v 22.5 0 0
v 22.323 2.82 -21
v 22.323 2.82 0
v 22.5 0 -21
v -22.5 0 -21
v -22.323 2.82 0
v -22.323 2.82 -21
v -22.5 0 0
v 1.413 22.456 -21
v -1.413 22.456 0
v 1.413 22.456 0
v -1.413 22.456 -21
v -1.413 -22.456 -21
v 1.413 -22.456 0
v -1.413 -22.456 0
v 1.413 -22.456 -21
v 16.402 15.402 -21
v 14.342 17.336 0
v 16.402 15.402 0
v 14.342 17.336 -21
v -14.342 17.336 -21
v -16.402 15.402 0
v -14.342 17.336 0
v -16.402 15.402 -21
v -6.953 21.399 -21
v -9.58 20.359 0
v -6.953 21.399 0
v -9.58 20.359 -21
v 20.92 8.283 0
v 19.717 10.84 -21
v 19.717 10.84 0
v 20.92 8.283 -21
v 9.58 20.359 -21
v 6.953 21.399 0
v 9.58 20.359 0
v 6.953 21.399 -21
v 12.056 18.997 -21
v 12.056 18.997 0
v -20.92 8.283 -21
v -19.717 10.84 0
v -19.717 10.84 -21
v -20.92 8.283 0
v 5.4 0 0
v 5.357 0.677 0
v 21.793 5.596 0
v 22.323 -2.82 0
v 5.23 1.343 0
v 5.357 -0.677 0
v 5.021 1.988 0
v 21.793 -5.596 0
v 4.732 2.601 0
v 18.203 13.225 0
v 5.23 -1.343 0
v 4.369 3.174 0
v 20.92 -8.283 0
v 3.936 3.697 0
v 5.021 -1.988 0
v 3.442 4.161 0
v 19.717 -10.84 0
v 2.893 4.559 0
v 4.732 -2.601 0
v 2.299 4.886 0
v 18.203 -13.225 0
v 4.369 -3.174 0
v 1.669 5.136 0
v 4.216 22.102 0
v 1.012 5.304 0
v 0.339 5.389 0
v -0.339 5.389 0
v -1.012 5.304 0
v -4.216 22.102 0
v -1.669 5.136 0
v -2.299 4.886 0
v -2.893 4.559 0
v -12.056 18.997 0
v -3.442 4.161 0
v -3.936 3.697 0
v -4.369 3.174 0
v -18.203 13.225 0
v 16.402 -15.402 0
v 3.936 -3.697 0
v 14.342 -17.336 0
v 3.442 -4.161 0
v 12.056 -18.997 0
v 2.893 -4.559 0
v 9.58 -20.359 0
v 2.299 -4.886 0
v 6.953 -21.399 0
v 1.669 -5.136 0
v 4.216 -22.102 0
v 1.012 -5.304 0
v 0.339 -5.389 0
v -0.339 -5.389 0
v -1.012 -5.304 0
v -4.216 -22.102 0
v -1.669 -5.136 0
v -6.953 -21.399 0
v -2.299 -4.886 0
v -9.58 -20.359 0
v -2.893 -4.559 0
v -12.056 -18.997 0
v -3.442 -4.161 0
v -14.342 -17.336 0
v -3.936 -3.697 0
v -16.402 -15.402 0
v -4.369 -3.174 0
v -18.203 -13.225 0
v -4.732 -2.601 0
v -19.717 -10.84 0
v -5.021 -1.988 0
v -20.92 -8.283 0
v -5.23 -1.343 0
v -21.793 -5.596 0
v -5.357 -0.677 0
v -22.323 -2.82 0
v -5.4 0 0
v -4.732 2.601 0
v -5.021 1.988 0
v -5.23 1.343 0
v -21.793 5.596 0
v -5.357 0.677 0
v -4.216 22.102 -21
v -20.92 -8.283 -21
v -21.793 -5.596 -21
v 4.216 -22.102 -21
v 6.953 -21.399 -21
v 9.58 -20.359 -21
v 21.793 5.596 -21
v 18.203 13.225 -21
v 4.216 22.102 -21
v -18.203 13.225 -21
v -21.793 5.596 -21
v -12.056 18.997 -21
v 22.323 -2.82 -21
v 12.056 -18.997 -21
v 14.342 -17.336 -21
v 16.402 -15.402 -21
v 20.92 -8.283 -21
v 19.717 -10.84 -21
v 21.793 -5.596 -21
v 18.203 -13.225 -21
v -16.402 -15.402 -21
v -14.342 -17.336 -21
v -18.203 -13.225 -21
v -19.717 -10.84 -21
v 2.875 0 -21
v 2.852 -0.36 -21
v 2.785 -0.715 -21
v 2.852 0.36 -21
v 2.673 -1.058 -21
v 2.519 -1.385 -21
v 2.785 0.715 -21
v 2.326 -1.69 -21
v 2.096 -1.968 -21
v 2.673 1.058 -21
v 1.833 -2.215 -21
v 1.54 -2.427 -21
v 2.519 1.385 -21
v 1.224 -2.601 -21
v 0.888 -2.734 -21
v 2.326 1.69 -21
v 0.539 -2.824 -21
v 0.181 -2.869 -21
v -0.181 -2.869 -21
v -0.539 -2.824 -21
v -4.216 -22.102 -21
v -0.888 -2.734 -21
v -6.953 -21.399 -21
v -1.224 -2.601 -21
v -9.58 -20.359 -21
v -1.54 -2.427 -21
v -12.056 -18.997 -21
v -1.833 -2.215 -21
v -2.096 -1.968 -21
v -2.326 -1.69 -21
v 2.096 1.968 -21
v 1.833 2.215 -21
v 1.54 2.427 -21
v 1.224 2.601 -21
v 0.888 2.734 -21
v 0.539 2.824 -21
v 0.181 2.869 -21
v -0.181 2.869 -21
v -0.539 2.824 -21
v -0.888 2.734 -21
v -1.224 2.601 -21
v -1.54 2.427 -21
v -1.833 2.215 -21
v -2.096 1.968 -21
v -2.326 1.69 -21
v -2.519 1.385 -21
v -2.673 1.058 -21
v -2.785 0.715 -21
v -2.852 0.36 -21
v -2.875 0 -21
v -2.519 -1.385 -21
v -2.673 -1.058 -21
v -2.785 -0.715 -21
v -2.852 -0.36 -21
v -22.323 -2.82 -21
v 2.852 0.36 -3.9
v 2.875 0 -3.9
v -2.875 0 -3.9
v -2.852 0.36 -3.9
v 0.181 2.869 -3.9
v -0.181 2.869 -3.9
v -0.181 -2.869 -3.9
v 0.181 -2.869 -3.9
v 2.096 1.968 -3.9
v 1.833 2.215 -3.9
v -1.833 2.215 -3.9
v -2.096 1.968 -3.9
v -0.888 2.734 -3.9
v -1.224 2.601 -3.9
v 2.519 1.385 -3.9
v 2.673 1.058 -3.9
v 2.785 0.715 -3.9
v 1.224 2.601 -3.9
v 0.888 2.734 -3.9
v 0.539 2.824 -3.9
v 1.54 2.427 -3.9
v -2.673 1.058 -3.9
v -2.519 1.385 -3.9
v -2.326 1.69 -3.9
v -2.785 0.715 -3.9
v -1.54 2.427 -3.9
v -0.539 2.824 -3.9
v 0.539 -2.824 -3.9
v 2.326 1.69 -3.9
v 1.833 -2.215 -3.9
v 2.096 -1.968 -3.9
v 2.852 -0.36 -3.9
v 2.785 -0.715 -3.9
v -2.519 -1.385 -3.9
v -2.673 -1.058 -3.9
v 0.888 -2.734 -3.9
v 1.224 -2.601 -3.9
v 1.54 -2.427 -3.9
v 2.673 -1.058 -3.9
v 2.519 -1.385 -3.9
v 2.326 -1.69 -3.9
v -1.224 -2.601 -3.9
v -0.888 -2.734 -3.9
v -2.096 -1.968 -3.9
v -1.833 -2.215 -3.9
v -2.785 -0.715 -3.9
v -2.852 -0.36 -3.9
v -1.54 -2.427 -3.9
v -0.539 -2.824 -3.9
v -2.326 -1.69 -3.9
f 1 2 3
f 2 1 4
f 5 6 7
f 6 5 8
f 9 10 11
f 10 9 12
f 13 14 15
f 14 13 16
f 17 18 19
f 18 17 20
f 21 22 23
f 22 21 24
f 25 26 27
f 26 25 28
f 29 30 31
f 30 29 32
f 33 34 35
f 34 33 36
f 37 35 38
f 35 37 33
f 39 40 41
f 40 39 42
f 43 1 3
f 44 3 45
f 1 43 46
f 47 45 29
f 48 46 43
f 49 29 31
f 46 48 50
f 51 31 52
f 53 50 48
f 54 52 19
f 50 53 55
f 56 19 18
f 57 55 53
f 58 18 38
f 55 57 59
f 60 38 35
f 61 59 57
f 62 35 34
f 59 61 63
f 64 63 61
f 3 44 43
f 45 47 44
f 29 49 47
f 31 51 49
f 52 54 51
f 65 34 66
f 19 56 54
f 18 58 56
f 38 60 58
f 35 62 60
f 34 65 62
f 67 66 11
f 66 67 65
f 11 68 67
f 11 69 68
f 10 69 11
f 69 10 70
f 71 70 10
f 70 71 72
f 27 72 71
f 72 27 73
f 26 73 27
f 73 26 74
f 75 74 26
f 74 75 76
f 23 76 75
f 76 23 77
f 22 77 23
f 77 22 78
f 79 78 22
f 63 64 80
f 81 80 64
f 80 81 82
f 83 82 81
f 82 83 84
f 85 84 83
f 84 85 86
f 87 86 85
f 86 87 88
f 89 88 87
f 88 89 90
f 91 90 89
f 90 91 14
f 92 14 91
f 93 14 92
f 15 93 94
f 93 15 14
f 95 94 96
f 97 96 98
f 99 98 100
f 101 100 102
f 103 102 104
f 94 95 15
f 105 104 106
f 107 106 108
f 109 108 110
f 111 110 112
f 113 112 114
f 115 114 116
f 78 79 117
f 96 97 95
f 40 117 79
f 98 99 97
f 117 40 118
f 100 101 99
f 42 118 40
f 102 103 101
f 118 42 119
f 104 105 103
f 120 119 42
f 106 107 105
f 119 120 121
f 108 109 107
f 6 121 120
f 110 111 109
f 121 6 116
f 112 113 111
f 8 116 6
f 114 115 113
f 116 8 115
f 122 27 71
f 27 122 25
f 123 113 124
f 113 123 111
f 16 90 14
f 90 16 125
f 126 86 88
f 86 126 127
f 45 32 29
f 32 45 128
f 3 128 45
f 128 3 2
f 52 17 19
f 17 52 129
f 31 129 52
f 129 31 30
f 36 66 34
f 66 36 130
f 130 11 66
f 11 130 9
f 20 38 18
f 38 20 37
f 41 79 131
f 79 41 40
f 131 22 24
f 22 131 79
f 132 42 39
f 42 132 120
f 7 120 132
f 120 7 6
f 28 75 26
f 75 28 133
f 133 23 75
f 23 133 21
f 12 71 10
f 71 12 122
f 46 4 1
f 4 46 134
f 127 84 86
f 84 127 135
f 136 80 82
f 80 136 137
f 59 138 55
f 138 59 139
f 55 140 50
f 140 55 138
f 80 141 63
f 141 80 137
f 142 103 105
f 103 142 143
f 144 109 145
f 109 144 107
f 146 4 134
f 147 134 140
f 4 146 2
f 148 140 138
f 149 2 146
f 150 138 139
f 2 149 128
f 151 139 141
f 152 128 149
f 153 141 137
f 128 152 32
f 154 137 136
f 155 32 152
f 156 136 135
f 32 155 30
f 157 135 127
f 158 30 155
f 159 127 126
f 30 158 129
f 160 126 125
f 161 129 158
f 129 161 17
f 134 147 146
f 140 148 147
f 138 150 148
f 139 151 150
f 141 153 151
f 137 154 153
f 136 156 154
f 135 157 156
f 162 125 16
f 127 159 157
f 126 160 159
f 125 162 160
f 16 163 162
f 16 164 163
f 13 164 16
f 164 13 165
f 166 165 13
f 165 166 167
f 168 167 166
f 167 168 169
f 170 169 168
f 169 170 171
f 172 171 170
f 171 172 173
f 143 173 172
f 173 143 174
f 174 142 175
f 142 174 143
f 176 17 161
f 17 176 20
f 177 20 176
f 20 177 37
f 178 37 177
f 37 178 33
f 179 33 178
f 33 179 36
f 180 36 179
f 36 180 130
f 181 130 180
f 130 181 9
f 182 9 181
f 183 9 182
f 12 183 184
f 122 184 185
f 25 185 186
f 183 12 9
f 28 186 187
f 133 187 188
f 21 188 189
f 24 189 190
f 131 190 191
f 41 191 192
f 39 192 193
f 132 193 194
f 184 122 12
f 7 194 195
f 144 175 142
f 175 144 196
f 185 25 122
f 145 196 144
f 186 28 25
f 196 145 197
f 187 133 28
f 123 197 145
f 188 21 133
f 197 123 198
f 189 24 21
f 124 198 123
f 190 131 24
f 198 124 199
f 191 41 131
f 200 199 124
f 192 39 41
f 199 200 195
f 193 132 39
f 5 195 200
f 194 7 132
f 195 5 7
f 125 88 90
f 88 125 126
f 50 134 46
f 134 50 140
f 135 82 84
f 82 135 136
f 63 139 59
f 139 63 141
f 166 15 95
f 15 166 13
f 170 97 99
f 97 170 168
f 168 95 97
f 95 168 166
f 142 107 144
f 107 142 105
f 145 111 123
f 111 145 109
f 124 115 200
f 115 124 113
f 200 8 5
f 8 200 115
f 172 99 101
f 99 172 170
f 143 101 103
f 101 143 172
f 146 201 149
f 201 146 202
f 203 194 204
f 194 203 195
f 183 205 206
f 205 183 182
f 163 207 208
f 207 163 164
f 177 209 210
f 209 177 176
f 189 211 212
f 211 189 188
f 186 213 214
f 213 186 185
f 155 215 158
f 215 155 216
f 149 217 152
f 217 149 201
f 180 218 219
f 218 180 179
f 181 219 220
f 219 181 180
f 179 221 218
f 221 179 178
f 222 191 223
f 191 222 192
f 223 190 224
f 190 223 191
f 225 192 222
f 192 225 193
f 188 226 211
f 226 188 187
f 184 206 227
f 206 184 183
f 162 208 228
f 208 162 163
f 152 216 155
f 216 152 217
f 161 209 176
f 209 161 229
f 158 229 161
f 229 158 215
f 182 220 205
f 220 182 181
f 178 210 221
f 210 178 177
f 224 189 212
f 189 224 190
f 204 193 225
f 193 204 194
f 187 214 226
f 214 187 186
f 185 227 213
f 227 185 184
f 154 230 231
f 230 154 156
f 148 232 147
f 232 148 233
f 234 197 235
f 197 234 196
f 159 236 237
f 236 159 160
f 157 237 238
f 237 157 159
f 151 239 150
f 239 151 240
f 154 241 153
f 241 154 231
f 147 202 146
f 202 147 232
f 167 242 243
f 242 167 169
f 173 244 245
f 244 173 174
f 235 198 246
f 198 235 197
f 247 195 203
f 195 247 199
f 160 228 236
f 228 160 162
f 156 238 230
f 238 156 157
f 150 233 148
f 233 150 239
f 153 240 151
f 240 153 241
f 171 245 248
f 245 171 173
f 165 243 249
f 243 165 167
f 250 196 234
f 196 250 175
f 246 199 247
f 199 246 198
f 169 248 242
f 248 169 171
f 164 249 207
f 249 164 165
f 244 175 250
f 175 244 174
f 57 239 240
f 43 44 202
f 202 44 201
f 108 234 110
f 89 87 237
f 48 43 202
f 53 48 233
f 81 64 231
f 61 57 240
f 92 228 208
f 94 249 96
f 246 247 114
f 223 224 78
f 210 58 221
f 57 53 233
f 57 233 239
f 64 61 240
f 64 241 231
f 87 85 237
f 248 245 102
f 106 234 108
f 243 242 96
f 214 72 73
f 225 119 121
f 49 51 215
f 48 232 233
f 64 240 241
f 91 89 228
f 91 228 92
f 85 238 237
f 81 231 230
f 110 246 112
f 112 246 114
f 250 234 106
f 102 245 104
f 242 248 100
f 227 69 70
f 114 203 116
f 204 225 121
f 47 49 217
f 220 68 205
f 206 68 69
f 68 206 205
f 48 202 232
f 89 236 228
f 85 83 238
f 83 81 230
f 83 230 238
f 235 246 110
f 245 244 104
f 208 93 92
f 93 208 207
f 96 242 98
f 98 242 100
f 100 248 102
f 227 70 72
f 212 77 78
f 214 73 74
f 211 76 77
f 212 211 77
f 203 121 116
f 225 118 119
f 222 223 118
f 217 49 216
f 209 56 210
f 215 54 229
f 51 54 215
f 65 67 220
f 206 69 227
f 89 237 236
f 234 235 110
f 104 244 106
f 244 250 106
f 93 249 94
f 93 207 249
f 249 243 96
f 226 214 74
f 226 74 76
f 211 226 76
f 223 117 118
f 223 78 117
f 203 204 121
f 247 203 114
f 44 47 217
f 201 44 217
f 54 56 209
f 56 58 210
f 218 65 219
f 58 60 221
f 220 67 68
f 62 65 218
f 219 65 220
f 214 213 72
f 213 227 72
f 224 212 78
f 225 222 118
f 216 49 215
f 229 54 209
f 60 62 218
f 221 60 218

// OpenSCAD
$fn = 50;


difference() {
	union() {
		translate(v = [0, 0, -21.0000000000]) {
			cylinder(h = 21, r = 22.5000000000);
		}
	}
	union() {
		translate(v = [0, 0, 0]) {
			rotate(a = [0, 0, 0]) {
				difference() {
					union() {
						translate(v = [0, 0, -24.0000000000]) {
							cylinder(h = 24, r = 2.6000000000);
						}
						translate(v = [0, 0, -3.9000000000]) {
							cylinder(h = 3.9000000000, r1 = 2.8750000000, r2 = 5.4000000000);
						}
						translate(v = [0, 0, -24.0000000000]) {
							cylinder(h = 24, r = 2.8750000000);
						}
						translate(v = [0, 0, -24.0000000000]) {
							cylinder(h = 24, r = 2.6000000000);
						}
					}
					union();
				}
			}
		}
	}
}
